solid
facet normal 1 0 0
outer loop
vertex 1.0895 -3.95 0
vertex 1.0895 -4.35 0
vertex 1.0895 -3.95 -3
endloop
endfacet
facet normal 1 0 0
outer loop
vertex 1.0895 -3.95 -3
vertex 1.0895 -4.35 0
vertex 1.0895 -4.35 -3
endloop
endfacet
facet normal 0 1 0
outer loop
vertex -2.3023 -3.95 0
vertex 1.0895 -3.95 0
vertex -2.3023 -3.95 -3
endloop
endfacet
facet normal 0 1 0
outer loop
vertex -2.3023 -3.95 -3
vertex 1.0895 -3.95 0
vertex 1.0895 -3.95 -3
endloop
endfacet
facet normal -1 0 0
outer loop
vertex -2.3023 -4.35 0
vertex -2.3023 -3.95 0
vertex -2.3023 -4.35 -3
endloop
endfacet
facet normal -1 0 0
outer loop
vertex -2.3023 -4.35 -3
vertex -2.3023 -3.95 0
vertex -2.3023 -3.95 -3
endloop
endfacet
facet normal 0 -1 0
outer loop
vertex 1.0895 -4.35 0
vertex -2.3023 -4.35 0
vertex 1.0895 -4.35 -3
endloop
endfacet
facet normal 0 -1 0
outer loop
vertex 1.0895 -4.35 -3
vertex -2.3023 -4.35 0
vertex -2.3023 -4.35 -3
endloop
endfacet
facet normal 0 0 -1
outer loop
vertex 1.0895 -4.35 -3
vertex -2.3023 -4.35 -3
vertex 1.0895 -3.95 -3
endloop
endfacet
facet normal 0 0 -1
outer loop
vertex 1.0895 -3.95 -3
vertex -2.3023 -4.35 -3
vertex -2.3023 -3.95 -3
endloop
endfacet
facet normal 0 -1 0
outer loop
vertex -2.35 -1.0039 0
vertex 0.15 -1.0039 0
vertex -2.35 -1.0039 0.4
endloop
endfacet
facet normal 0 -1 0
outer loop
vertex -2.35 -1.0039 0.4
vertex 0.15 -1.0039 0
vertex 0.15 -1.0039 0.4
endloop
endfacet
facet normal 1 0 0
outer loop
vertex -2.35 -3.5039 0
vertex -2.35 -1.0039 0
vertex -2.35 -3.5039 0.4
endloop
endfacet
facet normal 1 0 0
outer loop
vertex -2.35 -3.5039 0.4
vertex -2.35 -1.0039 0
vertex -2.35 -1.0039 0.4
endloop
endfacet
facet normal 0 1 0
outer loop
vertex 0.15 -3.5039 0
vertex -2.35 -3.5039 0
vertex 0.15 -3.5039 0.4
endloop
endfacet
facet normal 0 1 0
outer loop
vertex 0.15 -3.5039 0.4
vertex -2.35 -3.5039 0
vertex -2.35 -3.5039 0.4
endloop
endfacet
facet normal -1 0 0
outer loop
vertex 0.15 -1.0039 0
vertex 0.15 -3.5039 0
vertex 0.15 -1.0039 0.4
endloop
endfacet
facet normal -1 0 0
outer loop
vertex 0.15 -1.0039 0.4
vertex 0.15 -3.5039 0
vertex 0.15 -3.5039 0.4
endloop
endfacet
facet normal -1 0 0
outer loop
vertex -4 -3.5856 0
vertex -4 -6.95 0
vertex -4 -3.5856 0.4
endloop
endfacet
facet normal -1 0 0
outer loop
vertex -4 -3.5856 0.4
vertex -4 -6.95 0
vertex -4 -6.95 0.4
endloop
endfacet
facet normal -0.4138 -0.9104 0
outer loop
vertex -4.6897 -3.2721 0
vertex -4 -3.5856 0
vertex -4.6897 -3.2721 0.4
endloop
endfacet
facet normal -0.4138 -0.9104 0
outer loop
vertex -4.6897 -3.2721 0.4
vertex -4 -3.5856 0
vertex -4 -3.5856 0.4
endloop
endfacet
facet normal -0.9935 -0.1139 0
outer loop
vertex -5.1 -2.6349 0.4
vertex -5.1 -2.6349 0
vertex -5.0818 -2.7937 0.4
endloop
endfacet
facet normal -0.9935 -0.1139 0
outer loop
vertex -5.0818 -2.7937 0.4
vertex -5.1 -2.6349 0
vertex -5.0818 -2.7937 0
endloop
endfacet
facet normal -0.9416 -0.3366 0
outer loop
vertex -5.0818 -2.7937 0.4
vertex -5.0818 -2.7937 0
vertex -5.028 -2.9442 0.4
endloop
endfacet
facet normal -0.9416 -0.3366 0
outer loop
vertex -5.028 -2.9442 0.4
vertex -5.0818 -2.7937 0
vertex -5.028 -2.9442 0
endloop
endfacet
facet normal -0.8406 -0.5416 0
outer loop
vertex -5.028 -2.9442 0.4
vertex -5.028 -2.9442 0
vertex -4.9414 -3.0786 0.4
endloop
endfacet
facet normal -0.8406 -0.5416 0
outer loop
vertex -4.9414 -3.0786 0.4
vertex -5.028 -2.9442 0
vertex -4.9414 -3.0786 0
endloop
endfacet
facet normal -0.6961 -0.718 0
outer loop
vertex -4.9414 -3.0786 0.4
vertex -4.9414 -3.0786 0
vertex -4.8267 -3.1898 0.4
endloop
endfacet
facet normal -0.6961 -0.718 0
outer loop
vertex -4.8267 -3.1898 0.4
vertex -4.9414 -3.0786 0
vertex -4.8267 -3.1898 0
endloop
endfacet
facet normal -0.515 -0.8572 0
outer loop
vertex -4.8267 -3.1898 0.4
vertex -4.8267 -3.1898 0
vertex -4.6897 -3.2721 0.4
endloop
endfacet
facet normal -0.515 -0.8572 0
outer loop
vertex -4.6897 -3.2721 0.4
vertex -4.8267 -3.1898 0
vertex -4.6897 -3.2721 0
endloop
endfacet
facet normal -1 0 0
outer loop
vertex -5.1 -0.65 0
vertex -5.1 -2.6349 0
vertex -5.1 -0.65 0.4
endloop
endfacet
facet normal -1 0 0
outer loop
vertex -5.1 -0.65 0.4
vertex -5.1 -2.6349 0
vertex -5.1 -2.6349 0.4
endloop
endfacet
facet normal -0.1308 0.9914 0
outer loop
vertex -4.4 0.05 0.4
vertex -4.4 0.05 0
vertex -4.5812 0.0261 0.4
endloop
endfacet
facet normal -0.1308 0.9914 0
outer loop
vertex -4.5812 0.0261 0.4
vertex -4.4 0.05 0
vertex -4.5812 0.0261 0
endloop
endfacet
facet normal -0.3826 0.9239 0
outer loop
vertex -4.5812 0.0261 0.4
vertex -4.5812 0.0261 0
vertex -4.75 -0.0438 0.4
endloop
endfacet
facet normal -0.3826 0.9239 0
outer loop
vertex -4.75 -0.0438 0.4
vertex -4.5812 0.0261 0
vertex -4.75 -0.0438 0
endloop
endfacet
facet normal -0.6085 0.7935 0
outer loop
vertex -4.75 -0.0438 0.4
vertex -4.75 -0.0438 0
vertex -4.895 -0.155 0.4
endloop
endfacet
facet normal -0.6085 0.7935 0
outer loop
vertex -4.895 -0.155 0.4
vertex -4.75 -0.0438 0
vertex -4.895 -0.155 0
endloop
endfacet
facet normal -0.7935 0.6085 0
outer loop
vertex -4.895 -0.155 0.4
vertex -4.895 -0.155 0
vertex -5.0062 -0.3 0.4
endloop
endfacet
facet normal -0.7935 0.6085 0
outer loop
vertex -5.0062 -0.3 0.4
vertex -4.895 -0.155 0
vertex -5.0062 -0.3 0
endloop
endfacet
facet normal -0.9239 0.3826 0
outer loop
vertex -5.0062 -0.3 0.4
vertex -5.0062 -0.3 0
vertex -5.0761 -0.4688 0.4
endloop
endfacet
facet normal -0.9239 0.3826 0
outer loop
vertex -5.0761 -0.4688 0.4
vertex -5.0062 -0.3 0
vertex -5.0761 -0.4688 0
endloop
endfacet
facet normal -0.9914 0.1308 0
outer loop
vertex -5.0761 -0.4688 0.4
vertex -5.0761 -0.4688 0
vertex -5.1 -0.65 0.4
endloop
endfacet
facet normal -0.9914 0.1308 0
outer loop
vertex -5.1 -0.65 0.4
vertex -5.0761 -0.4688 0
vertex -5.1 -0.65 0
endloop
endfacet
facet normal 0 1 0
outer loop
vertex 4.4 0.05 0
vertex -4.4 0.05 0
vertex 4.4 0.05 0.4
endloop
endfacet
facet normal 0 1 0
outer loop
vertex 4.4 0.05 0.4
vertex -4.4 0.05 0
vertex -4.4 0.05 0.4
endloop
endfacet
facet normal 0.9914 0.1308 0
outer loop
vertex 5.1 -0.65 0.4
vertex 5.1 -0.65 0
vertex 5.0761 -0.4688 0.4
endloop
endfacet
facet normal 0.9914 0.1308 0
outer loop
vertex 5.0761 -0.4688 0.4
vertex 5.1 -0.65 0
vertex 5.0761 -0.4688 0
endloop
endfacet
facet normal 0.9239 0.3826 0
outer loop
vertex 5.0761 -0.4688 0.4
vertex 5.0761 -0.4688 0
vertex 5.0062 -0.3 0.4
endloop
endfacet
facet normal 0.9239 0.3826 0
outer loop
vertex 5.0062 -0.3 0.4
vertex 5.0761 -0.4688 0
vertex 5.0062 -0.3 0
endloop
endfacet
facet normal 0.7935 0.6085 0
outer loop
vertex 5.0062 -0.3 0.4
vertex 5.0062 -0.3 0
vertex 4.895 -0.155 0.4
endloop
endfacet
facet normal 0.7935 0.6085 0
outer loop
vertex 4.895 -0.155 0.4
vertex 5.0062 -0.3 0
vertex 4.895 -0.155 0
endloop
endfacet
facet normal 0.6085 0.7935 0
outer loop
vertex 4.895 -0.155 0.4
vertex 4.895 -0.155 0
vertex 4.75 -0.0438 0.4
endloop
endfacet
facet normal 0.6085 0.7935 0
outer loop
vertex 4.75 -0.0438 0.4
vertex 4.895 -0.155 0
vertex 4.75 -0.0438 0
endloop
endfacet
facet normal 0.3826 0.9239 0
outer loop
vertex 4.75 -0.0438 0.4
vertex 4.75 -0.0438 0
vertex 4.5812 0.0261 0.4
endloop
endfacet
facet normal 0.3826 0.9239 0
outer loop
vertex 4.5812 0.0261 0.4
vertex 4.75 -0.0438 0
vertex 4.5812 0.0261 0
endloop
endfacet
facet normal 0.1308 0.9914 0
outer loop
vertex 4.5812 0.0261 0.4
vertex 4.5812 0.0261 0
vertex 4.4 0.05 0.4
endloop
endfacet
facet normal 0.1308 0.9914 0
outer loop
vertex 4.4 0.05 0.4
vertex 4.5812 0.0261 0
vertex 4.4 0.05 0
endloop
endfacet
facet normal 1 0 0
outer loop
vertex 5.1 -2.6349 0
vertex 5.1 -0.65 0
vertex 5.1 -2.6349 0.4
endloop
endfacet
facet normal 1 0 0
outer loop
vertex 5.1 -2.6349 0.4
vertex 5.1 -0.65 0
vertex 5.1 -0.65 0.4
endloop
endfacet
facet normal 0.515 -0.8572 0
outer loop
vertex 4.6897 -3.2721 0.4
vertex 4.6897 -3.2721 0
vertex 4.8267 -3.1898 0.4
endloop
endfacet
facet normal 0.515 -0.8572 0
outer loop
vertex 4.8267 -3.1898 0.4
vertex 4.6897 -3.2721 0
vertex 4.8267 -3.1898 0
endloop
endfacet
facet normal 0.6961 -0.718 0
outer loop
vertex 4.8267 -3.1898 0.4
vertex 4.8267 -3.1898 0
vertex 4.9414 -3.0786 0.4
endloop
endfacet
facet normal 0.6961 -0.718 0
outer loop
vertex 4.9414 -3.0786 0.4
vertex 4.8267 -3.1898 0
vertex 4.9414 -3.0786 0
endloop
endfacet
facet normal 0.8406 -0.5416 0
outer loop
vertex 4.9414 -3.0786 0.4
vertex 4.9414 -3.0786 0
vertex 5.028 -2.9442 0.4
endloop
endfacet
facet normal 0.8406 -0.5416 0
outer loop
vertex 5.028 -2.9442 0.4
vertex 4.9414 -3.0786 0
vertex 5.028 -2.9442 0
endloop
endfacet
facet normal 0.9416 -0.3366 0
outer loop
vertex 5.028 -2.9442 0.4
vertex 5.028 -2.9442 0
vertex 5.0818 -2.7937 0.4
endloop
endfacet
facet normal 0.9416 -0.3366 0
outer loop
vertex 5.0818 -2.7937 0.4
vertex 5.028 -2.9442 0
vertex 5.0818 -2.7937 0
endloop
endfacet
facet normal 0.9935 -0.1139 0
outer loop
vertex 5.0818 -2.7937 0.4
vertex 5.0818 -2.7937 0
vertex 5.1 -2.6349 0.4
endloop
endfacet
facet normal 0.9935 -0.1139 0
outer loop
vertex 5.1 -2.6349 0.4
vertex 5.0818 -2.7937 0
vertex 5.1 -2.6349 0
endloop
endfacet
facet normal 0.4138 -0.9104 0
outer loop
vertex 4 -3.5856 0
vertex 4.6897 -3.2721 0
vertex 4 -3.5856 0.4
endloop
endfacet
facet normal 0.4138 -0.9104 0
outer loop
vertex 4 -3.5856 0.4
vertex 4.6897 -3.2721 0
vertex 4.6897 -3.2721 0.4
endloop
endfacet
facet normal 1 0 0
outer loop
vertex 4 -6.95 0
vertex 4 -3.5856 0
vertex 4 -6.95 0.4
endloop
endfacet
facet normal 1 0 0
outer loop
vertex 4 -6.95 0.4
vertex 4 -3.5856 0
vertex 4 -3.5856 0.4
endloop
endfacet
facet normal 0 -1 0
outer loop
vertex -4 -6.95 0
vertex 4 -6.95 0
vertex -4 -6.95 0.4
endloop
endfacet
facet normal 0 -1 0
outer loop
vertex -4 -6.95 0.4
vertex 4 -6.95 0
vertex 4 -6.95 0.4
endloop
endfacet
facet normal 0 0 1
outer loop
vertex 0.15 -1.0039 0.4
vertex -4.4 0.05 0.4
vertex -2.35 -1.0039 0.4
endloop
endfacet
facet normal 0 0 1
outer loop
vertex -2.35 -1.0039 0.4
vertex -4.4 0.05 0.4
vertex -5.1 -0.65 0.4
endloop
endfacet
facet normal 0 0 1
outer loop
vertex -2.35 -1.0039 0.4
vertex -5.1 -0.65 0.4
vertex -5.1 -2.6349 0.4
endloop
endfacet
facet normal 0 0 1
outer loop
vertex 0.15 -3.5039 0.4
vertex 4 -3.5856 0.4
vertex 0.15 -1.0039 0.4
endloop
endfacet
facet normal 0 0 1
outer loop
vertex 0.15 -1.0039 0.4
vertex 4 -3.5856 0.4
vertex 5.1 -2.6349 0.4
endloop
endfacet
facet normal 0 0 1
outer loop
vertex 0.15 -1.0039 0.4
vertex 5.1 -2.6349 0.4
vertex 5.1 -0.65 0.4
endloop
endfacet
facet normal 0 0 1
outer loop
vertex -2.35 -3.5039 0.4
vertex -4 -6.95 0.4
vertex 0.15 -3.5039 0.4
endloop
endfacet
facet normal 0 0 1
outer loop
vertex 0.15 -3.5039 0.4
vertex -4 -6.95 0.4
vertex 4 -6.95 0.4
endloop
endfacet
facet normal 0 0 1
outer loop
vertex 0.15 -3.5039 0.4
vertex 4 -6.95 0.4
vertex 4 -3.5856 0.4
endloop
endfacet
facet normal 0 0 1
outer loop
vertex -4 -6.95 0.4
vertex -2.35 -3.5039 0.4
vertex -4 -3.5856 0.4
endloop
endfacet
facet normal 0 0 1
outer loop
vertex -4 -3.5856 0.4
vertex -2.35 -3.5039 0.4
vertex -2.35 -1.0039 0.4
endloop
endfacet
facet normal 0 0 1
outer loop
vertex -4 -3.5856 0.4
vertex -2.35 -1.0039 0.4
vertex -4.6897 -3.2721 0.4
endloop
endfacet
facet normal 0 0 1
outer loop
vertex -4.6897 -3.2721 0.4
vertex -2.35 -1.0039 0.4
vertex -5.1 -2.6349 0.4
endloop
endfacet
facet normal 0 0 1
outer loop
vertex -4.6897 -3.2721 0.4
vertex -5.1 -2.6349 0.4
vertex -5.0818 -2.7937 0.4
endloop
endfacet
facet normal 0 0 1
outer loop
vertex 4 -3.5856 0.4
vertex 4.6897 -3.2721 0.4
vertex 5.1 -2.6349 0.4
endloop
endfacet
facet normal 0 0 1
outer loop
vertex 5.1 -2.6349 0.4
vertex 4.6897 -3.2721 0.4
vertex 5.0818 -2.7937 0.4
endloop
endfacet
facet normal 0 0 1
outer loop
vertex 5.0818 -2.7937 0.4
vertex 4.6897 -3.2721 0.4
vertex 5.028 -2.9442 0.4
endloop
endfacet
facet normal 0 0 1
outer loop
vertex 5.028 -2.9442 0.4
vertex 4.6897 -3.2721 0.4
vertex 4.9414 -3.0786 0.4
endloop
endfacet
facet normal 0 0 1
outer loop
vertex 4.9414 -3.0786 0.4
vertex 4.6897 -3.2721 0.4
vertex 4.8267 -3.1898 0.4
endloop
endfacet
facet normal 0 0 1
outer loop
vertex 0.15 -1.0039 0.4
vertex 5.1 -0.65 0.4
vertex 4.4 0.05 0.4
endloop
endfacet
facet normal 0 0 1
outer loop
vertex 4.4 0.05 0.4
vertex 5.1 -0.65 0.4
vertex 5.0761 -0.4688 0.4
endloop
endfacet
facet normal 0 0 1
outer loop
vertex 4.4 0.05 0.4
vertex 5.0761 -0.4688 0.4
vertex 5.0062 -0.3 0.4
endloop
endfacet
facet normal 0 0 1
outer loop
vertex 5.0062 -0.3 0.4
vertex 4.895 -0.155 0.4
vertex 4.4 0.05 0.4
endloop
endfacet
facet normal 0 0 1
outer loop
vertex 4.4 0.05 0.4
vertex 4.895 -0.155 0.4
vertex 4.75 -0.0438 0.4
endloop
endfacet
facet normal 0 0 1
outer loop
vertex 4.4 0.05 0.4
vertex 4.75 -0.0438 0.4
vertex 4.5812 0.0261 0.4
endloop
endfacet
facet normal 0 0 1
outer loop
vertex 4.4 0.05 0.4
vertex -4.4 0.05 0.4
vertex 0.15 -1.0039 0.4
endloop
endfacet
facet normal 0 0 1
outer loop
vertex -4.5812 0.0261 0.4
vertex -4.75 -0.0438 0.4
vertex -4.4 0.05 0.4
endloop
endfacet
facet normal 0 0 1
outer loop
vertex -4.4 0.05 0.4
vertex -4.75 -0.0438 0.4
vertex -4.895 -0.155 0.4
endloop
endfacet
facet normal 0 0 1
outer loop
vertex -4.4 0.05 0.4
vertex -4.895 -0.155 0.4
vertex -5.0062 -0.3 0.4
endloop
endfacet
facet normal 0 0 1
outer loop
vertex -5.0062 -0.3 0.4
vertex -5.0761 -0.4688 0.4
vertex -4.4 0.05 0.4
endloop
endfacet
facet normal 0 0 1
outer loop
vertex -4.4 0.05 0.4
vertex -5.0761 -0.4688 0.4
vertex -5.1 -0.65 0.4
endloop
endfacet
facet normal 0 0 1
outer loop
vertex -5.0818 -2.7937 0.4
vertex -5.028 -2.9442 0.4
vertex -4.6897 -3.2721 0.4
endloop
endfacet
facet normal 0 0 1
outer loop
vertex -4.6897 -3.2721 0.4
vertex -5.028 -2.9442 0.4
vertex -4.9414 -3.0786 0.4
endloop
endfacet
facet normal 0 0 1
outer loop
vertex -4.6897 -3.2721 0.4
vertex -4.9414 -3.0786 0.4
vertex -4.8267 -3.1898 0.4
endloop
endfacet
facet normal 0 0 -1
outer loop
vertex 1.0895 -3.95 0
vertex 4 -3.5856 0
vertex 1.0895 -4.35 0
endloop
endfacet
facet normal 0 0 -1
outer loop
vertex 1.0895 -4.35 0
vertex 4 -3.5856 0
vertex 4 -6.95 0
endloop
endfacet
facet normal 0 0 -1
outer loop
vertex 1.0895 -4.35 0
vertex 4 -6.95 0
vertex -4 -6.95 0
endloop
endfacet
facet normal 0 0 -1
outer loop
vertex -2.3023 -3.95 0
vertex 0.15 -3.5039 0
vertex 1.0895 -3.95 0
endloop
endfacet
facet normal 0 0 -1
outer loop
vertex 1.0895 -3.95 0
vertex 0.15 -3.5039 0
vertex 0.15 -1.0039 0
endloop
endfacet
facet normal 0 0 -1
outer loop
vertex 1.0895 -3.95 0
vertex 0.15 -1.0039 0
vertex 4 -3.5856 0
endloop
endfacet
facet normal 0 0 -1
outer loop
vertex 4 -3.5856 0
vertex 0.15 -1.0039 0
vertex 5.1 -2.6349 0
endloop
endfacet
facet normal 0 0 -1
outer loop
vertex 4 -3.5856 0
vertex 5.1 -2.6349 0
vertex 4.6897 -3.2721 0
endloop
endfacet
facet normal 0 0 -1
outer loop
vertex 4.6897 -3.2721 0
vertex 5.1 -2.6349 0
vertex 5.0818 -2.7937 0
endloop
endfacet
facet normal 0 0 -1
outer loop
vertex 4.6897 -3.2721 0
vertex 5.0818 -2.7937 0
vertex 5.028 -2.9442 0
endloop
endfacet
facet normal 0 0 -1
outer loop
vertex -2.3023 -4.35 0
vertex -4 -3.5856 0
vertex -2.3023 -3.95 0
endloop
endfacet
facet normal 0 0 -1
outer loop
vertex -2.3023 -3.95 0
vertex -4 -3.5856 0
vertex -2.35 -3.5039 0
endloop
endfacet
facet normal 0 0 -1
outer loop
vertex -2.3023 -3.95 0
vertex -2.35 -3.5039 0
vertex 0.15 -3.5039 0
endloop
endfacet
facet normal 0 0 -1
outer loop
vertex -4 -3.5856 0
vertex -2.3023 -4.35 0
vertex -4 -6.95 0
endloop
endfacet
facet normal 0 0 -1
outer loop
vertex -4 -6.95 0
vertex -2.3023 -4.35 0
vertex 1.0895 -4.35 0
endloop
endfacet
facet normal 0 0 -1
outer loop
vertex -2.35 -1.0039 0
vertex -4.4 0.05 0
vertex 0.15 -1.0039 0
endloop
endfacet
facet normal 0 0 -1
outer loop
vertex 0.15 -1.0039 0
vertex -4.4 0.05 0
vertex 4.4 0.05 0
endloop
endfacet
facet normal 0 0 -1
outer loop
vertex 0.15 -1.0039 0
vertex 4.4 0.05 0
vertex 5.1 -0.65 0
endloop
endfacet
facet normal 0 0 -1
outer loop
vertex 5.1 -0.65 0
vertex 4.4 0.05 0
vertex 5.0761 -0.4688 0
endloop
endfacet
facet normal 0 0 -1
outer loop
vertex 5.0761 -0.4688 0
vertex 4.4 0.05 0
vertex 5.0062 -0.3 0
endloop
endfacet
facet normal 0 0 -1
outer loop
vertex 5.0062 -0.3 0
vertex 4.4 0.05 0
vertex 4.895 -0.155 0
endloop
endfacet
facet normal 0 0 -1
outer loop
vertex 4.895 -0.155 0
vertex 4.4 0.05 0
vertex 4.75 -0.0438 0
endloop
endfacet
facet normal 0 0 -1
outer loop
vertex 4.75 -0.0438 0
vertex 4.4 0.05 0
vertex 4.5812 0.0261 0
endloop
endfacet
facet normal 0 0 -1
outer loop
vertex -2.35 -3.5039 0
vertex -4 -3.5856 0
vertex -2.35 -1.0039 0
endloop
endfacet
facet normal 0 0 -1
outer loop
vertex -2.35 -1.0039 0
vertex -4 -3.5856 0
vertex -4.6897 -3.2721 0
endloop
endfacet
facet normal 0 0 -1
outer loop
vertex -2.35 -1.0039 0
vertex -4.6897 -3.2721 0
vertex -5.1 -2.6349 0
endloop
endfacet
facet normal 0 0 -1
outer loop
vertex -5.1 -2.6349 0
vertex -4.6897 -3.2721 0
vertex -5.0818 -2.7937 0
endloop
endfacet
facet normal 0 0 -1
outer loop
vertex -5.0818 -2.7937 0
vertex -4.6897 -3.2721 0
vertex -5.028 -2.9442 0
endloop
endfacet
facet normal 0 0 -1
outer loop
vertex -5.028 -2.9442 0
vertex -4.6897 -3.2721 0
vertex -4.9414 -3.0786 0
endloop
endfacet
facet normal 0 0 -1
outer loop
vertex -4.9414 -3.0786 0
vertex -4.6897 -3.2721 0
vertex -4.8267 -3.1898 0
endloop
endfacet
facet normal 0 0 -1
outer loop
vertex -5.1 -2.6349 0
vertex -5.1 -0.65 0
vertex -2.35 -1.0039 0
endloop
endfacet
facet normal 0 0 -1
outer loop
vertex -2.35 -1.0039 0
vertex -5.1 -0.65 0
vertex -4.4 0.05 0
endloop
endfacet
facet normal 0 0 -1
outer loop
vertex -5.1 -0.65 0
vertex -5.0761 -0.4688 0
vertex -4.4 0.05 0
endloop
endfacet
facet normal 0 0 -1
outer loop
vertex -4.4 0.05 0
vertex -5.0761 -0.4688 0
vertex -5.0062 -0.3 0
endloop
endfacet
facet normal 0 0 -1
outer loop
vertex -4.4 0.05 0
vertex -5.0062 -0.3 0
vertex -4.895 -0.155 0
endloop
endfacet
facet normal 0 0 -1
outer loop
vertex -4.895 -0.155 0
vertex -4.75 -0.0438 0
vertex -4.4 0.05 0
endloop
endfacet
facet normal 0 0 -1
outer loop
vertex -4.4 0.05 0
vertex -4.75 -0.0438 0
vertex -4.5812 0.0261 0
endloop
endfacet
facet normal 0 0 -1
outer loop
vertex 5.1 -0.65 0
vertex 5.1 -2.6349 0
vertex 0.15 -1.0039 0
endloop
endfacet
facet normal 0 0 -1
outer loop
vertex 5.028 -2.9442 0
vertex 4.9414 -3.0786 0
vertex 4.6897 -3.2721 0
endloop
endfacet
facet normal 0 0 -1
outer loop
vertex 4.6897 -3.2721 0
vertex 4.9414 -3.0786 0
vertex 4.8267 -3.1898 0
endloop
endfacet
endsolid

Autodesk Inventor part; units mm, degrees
ref_plane "YZ Plane" through (0, 0, 0) normal (1, 0, 0) x (0, 1, 0)
ref_plane "XZ Plane" through (0, 0, 0) normal (0, 1, 0) x (-1, 0, 0)
ref_plane "XY Plane" through (0, 0, 0) normal (0, 0, 1) x (1, 0, 0)
sketch "Sketch1" plane through (0, 0, 0) normal (0, 0, 1) x (1, 0, 0)
  arc A0 (-4.8, 0.55) -> (-5.6, -0.25) centre (-4.8, -0.25) ccw projected
  line L0 (-5.6, -2.6349) -> (-5.6, -0.25) projected
  arc A1 (-5.6, -2.6349) -> (-5.3449, -3.2206) centre (-4.8, -2.6349) ccw projected
  arc A2 (-5.1931, -3.4997) -> (-5.3449, -3.2206) centre (-5.6855, -3.5867) ccw projected
  line L1 (-5.1931, -3.4997) -> (-4.6759, -3.7348) projected
  line L2 (-4.5, -7.45) -> (-4.5, -4.0079) projected
  line L3 (4.5, -7.45) -> (-4.5, -7.45) projected
  line L4 (4.5, -3.9927) -> (4.5, -7.45) projected
  line L5 (4.7986, -3.679) -> (5.1931, -3.4997) projected
  arc A3 (5.3449, -3.2206) -> (5.1931, -3.4997) centre (5.6855, -3.5867) ccw projected
  arc A4 (5.3449, -3.2206) -> (5.6, -2.6349) centre (4.8, -2.6349) ccw projected
  line L6 (5.6, -2.6349) -> (5.6, -0.25) projected
  arc A5 (5.6, -0.25) -> (4.8, 0.55) centre (4.8, -0.25) ccw projected
  line L7 (-4.8, 0.55) -> (4.8, 0.55) projected
  line L8 (-4.1, -3.65) -> (-4.731, -3.3632) projected
  arc A6 (-5.2, -2.6349) -> (-4.731, -3.3632) centre (-4.4, -2.6349) ccw projected
  line L9 (-5.2, -2.6349) -> (-5.2, -0.65) projected
  arc A7 (-4.4, 0.15) -> (-5.2, -0.65) centre (-4.4, -0.65) ccw projected
  line L10 (-4.4, 0.15) -> (4.4, 0.15) projected
  arc A8 (5.2, -0.65) -> (4.4, 0.15) centre (4.4, -0.65) ccw projected
  line L11 (5.2, -2.6349) -> (5.2, -0.65) projected
  arc A9 (4.731, -3.3632) -> (5.2, -2.6349) centre (4.4, -2.6349) ccw projected
  line L12 (4.731, -3.3632) -> (4.1, -3.65) projected
  line L13 (4.1, -7.05) -> (4.1, -3.65) projected
  line L14 (-4.1, -7.05) -> (4.1, -7.05) projected
  line L15 (-4.1, -3.65) -> (-4.1, -7.05) projected
  line L16 (-4, -6.95) -> (4, -6.95)
  line L17 (4, -6.95) -> (4, -3.5856)
  arc A10 (5.1, -0.65) -> (4.4, 0.05) centre (4.4, -0.65) ccw
  line L18 (5.1, -2.6349) -> (5.1, -0.65)
  line L19 (4.4, 0.05) -> (-4.4, 0.05)
  line L20 (4, -3.5856) -> (4.6897, -3.2721)
  arc A11 (4.6897, -3.2721) -> (5.1, -2.6349) centre (4.4, -2.6349) ccw
  line L21 (-4, -6.95) -> (-4, -3.5856)
  line L22 (-4, -3.5856) -> (-4.6897, -3.2721)
  line L23 (-5.1, -2.6349) -> (-5.1, -0.65)
  arc A12 (-5.1, -2.6349) -> (-4.6897, -3.2721) centre (-4.4, -2.6349) ccw
  arc A13 (-4.4, 0.05) -> (-5.1, -0.65) centre (-4.4, -0.65) ccw
  arc A14 (4.7372, -3.6993) -> (4.7986, -3.679) centre (4.6744, -3.4059) ccw projected
  arc A15 (4.7372, -3.6993) -> (4.5, -3.9927) centre (4.8, -3.9927) ccw projected
  arc A16 (-4.5, -4.0079) -> (-4.6759, -3.7348) centre (-4.8, -4.0079) ccw projected
  point P0 (0, 0)
  dimension "d1" = 0.1
  dimension "d2" = 0.1
  dimension "d3" = 0.1
  dimension "d4" = 0.1
  dimension "d5" = 0.1
  dimension "d7" = 0.1
  dimension "d8" = 0.1
  dimension "d9" = 0.1
  dimension "d10" = 0.1
  dimension "d11" = 0.1
  dimension "d13" = 0.1
  dimension "d15" = 0.1
extrude "Extrusion1" add sketch "Sketch1" along normal blind 0.4 contours L21 L22 A12 L23 A13 L19 A10 L18 A11 L20 L17 L16
sketch "Sketch2" plane through (0, 0, 0.4) normal (0, 0, 1) x (1, 0, 0)
  line L0 (0.15, -3.5039) -> (-2.35, -3.5039)
  line L1 (-2.35, -3.5039) -> (-2.35, -1.0039)
  line L2 (-2.35, -1.0039) -> (0.15, -1.0039)
  line L3 (0.15, -1.0039) -> (0.15, -3.5039)
  line L4 (4.4, 0.05) -> (-4.4, 0.05) projected
  line L5 (-5.1, -0.65) -> (-5.1, -2.6349) projected
  line L6 (5.1, -2.6349) -> (5.1, -0.65) projected
  point P0 (0, 0)
  dimension "d18" = 1.0539
  dimension "d19" = 2.75
  dimension "d21" = 2.5
  dimension "d22" = 4.95
  dimension "d23" = 2.5
extrude "Extrusion2" cut sketch "Sketch2" against normal up to surface (0.4 mm away)
sketch "Sketch3" plane through (0, 0, 0) normal (0, 0, -1) x (-1, 0, 0)
  line L0 (-1.0895, -3.95) -> (2.3023, -3.95)
  line L1 (2.3023, -3.95) -> (2.3023, -4.35)
  line L2 (2.3023, -4.35) -> (-1.0895, -4.35)
  line L3 (-1.0895, -4.35) -> (-1.0895, -3.95)
  line L4 (-4.4, 0.05) -> (4.4, 0.05) projected
  point P0 (0, 0)
  dimension "d28" = 4
  dimension "d29" = 0.4
extrude "Extrusion3" add sketch "Sketch3" along normal blind 3
equation "\"d2\" = d1"
equation "\"d3\" = d1"
equation "\"d4\" = d2"
equation "\"d5\" = d1"
equation "\"d7\" = d4"
equation "\"d8\" = d2"
equation "\"d9\" = d1"
equation "\"d10\" = d9"
equation "\"d11\" = d10"
properties part number "top_closure"
